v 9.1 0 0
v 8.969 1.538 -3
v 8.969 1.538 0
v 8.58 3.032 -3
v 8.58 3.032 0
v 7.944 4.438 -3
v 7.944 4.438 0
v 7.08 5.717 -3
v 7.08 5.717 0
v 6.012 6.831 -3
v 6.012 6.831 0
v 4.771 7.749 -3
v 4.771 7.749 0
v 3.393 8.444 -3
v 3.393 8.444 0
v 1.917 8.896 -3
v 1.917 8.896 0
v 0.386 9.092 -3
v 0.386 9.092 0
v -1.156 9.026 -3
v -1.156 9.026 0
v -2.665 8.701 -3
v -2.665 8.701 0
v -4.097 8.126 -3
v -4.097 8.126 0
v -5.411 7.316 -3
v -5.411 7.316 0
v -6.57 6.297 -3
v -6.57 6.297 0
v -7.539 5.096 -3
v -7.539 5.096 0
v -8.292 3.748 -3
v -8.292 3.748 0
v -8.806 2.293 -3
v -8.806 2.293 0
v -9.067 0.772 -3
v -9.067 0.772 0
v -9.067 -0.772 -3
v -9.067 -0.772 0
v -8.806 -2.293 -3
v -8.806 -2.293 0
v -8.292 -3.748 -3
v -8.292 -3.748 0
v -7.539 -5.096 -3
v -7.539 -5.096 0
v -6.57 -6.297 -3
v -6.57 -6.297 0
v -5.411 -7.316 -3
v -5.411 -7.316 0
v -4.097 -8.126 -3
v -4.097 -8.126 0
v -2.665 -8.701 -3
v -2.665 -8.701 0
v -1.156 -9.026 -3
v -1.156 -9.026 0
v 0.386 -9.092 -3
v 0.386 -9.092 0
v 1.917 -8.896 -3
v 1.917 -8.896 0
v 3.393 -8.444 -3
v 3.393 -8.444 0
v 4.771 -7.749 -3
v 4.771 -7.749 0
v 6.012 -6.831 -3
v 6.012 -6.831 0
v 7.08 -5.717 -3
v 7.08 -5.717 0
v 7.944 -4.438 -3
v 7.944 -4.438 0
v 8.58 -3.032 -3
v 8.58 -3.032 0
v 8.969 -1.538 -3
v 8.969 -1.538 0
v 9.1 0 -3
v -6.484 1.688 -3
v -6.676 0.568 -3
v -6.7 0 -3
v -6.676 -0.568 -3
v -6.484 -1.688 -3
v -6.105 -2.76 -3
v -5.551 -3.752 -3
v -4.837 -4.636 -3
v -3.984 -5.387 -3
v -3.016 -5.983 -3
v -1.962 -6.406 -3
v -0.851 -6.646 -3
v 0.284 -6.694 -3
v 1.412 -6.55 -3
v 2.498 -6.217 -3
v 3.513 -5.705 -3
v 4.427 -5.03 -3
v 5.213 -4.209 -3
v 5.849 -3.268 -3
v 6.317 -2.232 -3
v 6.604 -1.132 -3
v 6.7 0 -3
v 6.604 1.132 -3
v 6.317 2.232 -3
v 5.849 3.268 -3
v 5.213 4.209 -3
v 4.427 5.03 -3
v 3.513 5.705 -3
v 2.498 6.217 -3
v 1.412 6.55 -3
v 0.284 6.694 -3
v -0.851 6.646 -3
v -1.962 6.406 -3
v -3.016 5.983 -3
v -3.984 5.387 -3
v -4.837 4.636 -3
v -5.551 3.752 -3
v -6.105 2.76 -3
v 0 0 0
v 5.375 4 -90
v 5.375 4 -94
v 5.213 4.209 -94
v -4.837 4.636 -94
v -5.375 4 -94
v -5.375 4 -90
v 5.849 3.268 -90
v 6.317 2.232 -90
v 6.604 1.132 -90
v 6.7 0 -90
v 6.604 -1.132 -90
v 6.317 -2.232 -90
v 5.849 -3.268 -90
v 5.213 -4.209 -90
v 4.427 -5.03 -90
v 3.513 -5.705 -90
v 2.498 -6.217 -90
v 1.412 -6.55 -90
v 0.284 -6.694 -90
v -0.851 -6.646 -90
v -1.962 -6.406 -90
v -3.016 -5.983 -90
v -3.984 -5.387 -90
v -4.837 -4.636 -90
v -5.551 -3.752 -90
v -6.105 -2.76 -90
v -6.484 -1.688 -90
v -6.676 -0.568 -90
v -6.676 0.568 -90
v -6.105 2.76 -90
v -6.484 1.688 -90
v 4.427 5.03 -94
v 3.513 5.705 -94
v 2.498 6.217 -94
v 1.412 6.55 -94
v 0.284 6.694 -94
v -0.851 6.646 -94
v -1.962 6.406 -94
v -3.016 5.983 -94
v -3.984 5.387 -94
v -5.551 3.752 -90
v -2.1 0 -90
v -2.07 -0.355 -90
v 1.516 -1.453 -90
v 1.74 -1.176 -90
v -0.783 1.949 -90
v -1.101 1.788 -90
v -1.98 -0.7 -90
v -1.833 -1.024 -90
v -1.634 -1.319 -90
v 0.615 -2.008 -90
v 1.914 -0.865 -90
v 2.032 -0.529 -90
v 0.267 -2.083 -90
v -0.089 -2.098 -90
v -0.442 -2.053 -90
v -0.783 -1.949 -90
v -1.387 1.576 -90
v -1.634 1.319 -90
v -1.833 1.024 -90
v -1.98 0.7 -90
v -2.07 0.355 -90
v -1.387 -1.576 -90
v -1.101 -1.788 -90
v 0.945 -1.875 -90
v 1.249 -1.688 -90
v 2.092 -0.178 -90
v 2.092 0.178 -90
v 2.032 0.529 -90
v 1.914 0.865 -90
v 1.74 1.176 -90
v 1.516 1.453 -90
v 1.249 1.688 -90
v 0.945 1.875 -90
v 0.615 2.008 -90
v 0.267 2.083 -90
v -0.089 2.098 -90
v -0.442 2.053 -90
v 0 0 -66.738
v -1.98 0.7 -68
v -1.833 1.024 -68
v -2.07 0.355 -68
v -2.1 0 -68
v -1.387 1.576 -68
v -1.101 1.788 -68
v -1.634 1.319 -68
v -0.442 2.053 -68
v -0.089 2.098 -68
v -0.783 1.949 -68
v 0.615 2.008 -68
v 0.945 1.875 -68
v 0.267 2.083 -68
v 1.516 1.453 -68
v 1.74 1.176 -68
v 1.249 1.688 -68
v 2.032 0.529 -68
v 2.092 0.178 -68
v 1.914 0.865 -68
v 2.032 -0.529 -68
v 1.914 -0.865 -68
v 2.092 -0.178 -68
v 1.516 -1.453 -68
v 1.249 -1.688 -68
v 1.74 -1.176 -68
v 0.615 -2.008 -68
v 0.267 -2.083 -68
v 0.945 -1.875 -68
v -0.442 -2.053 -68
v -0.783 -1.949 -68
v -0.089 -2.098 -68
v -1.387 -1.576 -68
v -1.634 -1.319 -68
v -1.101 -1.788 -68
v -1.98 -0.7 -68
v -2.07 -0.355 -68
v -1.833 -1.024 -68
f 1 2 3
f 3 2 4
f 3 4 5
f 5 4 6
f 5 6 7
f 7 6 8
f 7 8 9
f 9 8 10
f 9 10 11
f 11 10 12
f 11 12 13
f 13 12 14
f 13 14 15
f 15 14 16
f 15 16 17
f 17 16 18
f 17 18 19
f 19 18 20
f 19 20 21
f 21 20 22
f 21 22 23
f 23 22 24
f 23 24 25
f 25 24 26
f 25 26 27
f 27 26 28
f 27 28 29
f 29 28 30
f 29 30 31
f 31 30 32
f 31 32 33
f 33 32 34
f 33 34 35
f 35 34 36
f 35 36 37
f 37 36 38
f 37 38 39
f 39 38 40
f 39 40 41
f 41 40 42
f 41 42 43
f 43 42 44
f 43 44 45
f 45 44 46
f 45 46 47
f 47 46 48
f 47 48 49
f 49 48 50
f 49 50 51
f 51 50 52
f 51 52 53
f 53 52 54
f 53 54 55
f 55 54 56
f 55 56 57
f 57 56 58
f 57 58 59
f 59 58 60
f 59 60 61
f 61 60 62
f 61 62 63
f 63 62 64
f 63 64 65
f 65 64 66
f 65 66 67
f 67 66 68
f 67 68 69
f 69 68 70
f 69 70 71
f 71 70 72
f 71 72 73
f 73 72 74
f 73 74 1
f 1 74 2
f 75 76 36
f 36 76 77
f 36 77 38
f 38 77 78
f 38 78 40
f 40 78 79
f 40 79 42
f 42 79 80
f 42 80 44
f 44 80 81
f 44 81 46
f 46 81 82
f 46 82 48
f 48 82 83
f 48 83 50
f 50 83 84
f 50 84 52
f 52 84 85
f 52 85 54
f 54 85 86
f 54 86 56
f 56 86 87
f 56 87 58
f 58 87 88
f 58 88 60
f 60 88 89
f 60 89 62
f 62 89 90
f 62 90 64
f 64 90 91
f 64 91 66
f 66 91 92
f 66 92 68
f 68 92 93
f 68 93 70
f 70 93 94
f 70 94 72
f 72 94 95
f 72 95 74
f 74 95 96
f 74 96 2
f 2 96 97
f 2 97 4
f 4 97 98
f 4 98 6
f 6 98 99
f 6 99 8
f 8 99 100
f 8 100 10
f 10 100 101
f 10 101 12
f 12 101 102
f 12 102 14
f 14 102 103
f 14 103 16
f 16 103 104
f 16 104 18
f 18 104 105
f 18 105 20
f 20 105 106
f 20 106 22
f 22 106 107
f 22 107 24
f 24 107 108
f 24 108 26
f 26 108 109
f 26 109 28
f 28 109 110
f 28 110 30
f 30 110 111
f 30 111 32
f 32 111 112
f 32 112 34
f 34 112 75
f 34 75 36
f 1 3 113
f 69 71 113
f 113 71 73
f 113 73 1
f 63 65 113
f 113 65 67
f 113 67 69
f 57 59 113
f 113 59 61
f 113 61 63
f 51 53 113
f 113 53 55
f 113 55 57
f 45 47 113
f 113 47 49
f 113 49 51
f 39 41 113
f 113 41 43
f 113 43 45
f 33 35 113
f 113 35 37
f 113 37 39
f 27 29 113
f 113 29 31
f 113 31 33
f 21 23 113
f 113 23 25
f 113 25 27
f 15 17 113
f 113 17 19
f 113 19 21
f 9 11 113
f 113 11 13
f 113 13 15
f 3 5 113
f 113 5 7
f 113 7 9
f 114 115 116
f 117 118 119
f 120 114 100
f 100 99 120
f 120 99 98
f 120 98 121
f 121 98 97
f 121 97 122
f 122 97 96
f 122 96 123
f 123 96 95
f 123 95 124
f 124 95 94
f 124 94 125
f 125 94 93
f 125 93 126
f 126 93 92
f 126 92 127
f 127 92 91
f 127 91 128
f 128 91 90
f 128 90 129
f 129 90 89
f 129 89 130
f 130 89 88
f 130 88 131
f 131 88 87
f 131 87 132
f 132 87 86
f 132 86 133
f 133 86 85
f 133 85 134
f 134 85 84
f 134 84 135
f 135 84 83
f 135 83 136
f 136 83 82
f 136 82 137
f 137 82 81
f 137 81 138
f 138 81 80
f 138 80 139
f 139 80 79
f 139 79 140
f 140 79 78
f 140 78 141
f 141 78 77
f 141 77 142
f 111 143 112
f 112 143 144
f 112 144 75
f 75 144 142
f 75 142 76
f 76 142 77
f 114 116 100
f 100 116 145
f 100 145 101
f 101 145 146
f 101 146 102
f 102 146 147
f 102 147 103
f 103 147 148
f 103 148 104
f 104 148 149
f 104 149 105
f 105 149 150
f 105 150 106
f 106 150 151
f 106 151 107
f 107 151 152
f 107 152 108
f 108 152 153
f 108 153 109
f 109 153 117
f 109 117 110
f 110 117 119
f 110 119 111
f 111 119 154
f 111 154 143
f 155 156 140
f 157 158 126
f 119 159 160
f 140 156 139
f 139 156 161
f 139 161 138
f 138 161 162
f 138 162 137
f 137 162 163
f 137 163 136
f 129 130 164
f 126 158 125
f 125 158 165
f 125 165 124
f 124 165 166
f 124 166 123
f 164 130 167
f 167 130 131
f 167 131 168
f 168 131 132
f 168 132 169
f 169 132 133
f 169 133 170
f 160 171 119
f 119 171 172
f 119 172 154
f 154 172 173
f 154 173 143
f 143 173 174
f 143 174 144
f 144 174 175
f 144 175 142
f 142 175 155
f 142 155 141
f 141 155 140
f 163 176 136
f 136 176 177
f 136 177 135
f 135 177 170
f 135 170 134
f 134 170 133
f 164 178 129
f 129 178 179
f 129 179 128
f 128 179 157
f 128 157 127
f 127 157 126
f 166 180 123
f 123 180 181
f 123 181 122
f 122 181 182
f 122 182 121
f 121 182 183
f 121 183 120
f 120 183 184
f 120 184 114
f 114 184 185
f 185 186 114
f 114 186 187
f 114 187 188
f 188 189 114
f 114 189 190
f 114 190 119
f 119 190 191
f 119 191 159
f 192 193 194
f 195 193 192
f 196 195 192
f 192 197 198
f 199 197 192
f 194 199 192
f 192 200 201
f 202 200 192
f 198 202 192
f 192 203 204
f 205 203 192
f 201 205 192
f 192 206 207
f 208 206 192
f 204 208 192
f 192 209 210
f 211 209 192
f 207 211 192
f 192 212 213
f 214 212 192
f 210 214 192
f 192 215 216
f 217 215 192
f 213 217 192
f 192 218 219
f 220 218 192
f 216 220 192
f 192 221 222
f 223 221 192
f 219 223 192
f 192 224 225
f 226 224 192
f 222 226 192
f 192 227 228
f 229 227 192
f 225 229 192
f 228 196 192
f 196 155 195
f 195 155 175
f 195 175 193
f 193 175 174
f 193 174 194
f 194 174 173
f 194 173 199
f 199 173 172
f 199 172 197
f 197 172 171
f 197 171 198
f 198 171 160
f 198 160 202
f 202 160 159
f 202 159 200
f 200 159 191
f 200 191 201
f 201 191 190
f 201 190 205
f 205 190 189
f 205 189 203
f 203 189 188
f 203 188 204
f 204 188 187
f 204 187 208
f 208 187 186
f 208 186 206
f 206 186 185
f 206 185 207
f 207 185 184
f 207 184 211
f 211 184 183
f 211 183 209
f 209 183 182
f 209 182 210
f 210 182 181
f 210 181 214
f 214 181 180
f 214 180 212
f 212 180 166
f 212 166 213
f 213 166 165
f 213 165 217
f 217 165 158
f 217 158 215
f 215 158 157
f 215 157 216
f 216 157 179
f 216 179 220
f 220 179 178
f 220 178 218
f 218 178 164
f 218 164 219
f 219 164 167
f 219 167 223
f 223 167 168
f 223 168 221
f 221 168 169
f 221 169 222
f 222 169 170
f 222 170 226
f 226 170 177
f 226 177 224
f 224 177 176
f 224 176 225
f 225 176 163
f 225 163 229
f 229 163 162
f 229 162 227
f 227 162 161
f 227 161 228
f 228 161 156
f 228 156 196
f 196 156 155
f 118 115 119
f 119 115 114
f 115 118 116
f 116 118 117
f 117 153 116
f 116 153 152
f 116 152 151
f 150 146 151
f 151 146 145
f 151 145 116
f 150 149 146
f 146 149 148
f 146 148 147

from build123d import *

# Parameters (mm, degrees)
ESBO_O1_R                                   = 9.1
RESSALTO_EXTRUS_O1_DEPTH                    = 3
ESBO_O2_R                                   = 6.7
RESSALTO_EXTRUS_O2_DEPTH                    = 87
FURO_ROSCADO_PARA_CONDU_TE_DE_M4X0_72_D     = 4.2
FURO_ROSCADO_PARA_CONDU_TE_DE_M4X0_72_DEPTH = 22
FURO_ROSCADO_PARA_CONDU_TE_DE_M4X0_72_TIP   = 1.2618073
RESSALTO_EXTRUS_O3_DEPTH                    = 4


with BuildPart() as part:
    # Esboço1 → Ressalto-extrusão1 (new body)
    with BuildSketch(Plane.XY):
        Circle(ESBO_O1_R)
    extrude(amount=-RESSALTO_EXTRUS_O1_DEPTH)

    # Esboço2 → Ressalto-extrusão2 (add)
    with BuildSketch(Plane(origin=(0, 0, -3), x_dir=(-1, 0, 0), z_dir=(0, 0, -1))):
        Circle(ESBO_O2_R)
    extrude(amount=RESSALTO_EXTRUS_O2_DEPTH)

    # Furo roscado para conduíte de M4x0.72
    with Locations(Plane(origin=(0, 0, -90), x_dir=(-1, 0, 0), z_dir=(0, 0, -1))):
        with Locations((0, 0)):
            Hole(FURO_ROSCADO_PARA_CONDU_TE_DE_M4X0_72_D / 2, depth=FURO_ROSCADO_PARA_CONDU_TE_DE_M4X0_72_DEPTH)
            with Locations((0, 0, -(FURO_ROSCADO_PARA_CONDU_TE_DE_M4X0_72_DEPTH + FURO_ROSCADO_PARA_CONDU_TE_DE_M4X0_72_TIP / 2))):  # 118° drill point
                Cone(0, FURO_ROSCADO_PARA_CONDU_TE_DE_M4X0_72_D / 2, FURO_ROSCADO_PARA_CONDU_TE_DE_M4X0_72_TIP, mode=Mode.SUBTRACT)

    # Esboço7 → Ressalto-extrusão3 (add)
    with BuildSketch(Plane(origin=(0, 0, -90), x_dir=(-1, 0, 0), z_dir=(0, 0, -1))):
        with BuildLine():
            Line((-5.37494186, 4), (5.37494186, 4))
            ThreePointArc((5.37494186, 4), (0, 6.7), (-5.37494186, 4))
        make_face()
    extrude(amount=RESSALTO_EXTRUS_O3_DEPTH)


solid = part.part
